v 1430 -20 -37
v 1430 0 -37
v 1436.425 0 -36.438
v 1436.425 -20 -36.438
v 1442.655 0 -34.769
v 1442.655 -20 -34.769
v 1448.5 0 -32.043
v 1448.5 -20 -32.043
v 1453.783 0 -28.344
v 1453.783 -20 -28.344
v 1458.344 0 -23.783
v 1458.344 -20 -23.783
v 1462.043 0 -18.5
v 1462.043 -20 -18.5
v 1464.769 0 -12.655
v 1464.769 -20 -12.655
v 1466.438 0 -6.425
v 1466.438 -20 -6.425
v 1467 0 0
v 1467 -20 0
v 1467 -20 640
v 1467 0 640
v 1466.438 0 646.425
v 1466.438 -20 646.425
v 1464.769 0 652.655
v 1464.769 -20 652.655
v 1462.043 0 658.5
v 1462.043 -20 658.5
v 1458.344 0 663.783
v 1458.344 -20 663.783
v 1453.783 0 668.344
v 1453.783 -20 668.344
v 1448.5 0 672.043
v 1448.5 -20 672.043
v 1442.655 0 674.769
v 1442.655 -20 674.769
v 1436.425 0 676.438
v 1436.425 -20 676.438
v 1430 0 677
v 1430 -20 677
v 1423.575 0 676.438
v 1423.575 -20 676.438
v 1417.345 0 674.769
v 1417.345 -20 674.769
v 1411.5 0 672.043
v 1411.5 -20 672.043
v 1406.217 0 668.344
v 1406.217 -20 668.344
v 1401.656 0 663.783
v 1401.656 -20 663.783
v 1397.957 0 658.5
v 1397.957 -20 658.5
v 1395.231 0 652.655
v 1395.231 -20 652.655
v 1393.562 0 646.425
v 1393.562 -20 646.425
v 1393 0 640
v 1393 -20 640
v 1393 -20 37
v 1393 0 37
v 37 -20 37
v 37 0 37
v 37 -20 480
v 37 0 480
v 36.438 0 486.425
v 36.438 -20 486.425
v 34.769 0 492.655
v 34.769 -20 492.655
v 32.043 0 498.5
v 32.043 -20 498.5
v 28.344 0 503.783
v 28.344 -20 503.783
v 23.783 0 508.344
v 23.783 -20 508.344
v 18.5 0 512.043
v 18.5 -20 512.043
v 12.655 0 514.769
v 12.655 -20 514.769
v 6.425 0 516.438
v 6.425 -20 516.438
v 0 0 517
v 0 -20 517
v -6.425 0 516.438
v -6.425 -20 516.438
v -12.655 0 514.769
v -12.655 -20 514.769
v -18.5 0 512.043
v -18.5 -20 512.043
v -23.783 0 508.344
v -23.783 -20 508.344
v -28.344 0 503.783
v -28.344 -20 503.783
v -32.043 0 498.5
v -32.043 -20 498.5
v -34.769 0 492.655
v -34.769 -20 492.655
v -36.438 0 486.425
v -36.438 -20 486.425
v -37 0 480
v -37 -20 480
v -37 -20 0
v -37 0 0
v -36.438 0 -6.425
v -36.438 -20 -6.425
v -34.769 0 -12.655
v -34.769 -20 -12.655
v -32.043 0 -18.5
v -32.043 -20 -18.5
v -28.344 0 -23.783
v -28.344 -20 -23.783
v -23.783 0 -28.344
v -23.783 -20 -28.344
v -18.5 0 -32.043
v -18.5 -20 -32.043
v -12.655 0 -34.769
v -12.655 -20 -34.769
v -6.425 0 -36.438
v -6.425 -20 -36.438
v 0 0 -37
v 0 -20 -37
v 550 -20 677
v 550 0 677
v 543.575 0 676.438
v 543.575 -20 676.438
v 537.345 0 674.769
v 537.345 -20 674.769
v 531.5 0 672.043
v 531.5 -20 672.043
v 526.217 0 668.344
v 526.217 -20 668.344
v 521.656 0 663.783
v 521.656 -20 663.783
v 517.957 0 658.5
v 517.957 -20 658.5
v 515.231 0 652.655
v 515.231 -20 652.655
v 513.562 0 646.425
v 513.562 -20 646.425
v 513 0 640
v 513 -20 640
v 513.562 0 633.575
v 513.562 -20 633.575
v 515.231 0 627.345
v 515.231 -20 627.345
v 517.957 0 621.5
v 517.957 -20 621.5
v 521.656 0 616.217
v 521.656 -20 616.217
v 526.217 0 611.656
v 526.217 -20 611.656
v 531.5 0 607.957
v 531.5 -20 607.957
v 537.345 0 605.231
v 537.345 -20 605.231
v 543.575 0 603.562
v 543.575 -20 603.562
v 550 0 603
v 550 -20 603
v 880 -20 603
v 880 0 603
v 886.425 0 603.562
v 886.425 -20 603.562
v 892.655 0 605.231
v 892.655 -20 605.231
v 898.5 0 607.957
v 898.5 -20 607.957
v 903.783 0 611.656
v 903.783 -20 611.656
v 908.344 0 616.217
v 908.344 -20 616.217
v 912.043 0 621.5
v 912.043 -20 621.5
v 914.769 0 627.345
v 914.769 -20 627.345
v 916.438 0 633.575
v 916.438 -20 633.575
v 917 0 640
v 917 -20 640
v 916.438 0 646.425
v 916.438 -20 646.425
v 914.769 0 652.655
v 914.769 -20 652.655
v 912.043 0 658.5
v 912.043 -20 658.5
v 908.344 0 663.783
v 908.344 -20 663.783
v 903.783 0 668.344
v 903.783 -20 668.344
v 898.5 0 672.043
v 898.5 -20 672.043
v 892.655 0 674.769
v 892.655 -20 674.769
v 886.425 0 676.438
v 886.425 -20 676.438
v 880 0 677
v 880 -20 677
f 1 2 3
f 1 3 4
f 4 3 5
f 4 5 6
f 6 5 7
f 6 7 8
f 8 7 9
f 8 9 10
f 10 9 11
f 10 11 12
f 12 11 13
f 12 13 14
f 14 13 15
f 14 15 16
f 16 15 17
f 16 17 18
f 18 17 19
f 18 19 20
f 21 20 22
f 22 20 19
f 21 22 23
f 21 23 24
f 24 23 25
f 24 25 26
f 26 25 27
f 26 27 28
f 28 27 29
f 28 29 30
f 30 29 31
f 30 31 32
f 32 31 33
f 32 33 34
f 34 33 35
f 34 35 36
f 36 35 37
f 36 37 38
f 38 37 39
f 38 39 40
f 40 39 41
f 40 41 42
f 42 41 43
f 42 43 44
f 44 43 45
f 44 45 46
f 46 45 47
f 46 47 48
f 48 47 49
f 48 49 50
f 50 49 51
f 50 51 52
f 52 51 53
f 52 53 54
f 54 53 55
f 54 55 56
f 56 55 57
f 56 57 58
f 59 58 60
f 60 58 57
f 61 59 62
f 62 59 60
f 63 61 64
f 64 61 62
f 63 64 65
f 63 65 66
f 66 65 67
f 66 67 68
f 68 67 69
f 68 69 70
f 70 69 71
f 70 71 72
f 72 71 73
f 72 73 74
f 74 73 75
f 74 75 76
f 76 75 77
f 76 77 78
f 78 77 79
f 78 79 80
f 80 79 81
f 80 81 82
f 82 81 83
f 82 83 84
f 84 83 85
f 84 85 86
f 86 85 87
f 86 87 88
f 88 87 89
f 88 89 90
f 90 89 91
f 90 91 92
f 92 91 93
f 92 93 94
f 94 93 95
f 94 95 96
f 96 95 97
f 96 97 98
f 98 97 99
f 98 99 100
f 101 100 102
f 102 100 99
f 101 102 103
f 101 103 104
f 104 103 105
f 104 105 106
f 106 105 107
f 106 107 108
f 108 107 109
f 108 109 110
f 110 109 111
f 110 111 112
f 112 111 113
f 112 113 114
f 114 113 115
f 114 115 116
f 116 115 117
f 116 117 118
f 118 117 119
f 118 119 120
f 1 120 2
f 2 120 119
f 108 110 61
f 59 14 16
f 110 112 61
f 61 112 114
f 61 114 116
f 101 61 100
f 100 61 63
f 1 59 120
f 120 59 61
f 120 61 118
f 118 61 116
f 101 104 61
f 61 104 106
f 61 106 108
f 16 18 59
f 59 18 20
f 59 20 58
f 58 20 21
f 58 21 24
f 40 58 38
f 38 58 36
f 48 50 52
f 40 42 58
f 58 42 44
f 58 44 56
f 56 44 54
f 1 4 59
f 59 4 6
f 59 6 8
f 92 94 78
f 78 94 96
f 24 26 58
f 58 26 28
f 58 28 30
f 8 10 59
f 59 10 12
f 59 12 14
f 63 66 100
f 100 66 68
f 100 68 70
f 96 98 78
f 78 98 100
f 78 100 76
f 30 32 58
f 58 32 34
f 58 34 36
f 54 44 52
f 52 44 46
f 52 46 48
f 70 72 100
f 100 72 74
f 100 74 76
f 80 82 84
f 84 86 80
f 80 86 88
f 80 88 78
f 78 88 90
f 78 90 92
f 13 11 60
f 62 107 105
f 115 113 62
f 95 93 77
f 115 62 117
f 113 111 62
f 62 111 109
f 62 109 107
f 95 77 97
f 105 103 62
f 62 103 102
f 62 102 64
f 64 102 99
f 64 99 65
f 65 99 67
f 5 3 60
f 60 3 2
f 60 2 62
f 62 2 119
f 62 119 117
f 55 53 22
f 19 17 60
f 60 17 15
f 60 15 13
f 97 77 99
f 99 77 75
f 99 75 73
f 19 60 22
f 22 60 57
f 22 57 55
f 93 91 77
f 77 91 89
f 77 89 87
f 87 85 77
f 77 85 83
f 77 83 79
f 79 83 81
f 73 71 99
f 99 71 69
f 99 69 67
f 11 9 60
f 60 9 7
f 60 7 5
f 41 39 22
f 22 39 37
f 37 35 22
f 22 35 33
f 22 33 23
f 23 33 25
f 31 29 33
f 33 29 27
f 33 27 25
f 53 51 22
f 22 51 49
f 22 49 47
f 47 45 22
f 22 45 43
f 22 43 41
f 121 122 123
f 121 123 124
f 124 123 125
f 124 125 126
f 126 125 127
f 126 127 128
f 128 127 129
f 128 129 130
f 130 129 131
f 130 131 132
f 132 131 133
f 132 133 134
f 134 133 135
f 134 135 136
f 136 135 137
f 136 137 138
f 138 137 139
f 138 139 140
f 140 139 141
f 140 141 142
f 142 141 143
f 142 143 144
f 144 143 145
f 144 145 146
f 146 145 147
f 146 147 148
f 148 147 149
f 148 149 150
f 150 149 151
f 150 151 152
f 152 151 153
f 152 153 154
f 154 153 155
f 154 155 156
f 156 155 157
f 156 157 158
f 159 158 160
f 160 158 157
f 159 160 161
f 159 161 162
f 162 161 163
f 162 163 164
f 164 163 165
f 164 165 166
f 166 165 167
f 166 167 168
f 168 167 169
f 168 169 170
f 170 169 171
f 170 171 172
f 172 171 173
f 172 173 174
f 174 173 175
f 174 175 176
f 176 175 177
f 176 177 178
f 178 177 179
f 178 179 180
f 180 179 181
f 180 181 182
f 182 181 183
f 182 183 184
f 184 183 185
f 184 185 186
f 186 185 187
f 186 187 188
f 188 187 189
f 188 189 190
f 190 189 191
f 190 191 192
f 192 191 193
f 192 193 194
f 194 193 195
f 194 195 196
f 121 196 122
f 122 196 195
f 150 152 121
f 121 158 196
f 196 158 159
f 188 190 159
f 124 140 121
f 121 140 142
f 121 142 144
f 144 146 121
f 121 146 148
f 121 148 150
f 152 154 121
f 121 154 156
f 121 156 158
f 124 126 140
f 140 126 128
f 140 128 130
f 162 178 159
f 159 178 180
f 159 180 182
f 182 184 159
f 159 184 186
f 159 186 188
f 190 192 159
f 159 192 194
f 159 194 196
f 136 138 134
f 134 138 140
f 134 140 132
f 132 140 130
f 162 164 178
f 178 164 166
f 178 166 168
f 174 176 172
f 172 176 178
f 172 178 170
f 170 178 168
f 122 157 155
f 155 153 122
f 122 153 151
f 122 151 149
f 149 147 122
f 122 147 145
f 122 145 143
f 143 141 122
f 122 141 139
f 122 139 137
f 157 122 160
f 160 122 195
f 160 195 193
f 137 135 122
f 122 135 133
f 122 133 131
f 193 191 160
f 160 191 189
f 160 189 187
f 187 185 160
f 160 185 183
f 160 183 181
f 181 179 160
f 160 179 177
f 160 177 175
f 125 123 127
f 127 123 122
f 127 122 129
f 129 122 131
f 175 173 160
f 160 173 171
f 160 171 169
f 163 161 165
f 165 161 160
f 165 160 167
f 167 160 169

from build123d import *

# Parameters (mm, degrees)
EXTRUDE_3_DEPTH   = 20
EXTRUDE_3_2_DEPTH = 20


with BuildPart() as part:
    # 草图5 → 凸台-拉伸3 (new body)
    with BuildSketch(Plane(origin=(0, 0, 0), x_dir=(1, 0, 0), z_dir=(0, 1, 0))):
        with BuildLine():
            Line((37, -480), (37, -37))
            Line((37, -37), (1393, -37))
            Line((1393, -37), (1393, -640))
            ThreePointArc((1393, -640), (1430, -677), (1467, -640))
            Line((1467, -640), (1467, 0))
            ThreePointArc((1467, 0), (1456.162950904, 26.162950904), (1430, 37))
            Line((1430, 37), (0, 37))
            ThreePointArc((0, 37), (-26.162950904, 26.162950904), (-37, 0))
            Line((-37, 0), (-37, -480))
            ThreePointArc((-37, -480), (0, -517), (37, -480))
        make_face()
    extrude(amount=-EXTRUDE_3_DEPTH)


with BuildPart() as body_2:
    # 草图5 → Extrude 3 2 (new body)
    with BuildSketch(Plane(origin=(0, 0, 0), x_dir=(1, 0, 0), z_dir=(0, 1, 0))):
        with BuildLine():
            Line((550, -677), (880, -677))
            ThreePointArc((880, -677), (917, -640), (880, -603))
            Line((880, -603), (550, -603))
            ThreePointArc((550, -603), (513, -640), (550, -677))
        make_face()
    extrude(amount=-EXTRUDE_3_2_DEPTH)


solid = Compound([part.part, body_2.part])
